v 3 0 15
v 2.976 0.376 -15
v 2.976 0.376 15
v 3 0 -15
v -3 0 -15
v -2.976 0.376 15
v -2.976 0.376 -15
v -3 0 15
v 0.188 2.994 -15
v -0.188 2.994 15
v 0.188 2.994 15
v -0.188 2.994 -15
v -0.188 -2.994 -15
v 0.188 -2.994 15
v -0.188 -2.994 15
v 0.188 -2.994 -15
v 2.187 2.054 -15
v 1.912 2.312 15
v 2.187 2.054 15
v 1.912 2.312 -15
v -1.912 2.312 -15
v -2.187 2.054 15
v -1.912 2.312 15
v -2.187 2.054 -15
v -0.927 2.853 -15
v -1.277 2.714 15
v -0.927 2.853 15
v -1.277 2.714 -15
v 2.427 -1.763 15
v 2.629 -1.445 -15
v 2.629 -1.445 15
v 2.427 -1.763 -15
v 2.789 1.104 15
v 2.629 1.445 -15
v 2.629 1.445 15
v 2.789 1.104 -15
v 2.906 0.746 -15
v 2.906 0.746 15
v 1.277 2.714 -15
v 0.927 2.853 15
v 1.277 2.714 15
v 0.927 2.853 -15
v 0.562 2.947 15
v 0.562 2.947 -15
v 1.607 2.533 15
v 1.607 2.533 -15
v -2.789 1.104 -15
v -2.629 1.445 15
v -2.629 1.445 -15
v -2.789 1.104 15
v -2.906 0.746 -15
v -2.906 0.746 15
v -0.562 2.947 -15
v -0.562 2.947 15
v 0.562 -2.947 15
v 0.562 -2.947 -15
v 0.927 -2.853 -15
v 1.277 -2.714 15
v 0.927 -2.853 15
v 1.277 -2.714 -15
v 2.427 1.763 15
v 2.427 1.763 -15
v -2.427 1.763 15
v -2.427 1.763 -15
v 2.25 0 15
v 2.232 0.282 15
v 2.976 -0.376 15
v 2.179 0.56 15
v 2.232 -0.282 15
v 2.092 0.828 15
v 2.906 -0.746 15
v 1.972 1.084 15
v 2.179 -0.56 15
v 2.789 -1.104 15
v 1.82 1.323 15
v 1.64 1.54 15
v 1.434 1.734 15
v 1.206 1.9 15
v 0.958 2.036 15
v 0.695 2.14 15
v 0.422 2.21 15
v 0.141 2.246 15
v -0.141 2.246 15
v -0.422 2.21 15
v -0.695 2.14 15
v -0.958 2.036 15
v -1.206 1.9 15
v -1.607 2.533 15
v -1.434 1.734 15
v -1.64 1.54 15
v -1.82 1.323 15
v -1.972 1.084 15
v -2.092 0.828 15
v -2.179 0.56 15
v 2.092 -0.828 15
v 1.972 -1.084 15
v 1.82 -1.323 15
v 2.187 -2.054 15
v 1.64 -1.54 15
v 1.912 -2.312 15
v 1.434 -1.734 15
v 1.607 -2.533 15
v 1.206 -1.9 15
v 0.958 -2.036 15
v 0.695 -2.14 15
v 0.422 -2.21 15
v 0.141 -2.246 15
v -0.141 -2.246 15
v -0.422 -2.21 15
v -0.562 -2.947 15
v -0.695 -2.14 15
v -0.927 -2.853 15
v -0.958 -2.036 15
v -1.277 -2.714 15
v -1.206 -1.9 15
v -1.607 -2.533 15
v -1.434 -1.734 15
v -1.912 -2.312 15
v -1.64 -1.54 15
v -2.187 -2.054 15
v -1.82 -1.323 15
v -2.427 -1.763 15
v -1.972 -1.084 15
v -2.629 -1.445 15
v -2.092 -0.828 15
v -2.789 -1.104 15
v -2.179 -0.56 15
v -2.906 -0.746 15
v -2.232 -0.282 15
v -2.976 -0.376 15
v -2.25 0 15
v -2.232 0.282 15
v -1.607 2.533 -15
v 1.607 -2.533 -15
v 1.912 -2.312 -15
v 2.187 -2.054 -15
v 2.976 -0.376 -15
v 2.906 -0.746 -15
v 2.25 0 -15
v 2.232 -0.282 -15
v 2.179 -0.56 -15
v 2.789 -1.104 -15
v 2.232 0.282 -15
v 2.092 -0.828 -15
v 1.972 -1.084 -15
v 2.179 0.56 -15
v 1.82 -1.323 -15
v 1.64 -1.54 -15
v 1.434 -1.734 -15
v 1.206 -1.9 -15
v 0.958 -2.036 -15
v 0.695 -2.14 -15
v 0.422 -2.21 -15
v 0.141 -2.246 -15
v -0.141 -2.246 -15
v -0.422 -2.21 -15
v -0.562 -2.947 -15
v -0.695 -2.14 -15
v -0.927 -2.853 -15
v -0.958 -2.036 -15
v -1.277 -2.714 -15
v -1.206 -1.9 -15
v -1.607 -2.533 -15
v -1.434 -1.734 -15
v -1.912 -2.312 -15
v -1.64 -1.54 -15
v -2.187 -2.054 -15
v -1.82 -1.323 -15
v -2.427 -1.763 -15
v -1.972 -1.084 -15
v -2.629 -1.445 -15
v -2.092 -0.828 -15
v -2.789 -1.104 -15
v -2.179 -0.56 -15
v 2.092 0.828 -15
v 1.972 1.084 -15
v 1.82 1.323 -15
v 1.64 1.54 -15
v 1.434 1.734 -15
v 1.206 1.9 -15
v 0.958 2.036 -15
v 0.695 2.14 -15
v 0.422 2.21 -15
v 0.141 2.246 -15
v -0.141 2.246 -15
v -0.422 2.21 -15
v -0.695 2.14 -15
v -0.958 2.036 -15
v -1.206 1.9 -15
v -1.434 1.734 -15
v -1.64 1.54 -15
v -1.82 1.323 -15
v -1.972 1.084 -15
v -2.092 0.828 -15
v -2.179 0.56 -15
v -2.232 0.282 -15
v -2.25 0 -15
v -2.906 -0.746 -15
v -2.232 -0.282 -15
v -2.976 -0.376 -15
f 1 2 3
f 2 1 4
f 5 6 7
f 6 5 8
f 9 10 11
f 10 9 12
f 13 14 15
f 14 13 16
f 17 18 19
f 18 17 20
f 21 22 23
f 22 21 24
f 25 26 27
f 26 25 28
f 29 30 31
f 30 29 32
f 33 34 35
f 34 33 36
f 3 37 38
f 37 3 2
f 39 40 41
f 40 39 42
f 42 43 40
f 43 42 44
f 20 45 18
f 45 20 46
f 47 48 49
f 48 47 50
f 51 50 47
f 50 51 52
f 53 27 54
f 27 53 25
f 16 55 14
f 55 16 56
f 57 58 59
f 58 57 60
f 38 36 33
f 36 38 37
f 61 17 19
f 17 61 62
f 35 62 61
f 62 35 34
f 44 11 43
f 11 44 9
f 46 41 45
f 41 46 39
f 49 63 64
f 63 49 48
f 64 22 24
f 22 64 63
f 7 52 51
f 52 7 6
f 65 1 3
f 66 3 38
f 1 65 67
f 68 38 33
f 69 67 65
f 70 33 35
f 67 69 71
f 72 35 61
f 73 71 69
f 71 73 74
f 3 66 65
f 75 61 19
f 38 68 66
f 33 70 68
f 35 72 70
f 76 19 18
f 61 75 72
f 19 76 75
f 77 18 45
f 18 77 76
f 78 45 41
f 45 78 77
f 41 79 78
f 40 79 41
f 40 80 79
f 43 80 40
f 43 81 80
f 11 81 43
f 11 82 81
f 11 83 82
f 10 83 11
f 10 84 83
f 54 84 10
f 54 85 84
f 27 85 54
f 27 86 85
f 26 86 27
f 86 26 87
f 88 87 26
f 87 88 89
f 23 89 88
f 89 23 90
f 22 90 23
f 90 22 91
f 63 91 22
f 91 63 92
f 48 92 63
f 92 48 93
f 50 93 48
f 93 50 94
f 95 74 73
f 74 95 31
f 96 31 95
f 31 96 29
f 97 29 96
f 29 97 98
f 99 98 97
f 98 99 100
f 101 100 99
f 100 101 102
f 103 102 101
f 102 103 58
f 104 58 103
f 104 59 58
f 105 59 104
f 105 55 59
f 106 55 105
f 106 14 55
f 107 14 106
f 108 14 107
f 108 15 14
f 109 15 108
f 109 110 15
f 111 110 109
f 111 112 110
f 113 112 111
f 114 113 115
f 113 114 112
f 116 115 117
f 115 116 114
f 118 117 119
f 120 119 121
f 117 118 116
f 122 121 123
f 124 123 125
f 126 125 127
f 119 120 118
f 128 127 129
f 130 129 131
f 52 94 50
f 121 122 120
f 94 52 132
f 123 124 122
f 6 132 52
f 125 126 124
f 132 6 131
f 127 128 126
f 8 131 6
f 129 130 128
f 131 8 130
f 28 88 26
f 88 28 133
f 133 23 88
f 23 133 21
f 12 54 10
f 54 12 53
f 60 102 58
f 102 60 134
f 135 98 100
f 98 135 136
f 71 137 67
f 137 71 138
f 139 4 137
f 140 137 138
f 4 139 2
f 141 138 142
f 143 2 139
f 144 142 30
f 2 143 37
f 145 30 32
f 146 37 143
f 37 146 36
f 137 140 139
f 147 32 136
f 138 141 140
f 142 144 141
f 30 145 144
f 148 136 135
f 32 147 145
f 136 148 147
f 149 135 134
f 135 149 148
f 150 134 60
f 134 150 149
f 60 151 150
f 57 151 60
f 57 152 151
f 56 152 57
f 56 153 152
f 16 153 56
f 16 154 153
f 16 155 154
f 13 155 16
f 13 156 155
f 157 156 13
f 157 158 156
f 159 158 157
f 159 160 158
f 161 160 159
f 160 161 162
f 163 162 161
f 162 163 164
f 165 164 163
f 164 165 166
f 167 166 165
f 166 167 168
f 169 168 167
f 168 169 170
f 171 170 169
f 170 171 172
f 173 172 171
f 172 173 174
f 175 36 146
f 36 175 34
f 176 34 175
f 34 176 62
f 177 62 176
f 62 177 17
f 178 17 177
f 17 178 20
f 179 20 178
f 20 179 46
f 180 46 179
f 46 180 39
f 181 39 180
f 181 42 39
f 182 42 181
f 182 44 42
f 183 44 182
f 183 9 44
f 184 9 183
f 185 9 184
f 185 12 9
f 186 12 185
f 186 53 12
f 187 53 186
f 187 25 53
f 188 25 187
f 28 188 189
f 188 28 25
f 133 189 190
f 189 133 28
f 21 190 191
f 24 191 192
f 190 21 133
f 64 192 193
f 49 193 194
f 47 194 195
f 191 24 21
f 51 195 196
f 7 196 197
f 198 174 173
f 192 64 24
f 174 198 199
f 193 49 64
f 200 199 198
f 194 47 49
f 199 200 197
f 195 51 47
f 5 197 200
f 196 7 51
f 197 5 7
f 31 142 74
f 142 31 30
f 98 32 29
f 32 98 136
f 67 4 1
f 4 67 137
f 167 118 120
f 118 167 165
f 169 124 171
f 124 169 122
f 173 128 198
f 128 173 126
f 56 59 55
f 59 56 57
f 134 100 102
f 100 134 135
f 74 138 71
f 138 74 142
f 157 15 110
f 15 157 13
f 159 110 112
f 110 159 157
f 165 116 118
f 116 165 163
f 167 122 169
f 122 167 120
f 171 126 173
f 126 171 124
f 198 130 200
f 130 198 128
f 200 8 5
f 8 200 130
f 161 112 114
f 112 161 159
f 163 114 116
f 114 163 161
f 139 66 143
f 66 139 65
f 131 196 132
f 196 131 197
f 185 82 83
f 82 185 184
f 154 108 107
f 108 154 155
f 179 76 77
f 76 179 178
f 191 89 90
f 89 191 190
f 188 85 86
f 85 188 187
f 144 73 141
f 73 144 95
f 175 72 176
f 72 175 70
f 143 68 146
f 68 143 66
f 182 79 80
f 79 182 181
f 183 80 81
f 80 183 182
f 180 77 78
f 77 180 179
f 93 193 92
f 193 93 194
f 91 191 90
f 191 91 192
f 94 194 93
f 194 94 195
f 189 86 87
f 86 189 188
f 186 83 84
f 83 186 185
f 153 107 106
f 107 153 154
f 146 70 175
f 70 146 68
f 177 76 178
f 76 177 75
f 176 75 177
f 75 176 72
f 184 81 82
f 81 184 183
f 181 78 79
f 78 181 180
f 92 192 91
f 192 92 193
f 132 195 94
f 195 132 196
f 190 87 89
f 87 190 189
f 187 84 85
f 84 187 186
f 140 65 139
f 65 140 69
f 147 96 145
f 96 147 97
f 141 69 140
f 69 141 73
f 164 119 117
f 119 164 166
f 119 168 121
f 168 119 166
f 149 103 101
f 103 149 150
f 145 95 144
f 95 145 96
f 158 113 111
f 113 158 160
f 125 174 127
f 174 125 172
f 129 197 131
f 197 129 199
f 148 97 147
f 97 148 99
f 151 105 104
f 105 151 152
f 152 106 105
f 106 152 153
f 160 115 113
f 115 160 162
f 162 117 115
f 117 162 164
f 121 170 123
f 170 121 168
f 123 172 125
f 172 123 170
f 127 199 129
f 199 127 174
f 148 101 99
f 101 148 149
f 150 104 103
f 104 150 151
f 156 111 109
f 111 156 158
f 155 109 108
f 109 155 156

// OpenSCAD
$fn = 50;


difference() {
	union() {
		translate(v = [0, 0, -15.0000000000]) {
			cylinder(h = 30, r = 3.0000000000);
		}
	}
	union() {
		translate(v = [0, 0, -100.0000000000]) {
			cylinder(h = 200, r = 2.2500000000);
		}
	}
}
